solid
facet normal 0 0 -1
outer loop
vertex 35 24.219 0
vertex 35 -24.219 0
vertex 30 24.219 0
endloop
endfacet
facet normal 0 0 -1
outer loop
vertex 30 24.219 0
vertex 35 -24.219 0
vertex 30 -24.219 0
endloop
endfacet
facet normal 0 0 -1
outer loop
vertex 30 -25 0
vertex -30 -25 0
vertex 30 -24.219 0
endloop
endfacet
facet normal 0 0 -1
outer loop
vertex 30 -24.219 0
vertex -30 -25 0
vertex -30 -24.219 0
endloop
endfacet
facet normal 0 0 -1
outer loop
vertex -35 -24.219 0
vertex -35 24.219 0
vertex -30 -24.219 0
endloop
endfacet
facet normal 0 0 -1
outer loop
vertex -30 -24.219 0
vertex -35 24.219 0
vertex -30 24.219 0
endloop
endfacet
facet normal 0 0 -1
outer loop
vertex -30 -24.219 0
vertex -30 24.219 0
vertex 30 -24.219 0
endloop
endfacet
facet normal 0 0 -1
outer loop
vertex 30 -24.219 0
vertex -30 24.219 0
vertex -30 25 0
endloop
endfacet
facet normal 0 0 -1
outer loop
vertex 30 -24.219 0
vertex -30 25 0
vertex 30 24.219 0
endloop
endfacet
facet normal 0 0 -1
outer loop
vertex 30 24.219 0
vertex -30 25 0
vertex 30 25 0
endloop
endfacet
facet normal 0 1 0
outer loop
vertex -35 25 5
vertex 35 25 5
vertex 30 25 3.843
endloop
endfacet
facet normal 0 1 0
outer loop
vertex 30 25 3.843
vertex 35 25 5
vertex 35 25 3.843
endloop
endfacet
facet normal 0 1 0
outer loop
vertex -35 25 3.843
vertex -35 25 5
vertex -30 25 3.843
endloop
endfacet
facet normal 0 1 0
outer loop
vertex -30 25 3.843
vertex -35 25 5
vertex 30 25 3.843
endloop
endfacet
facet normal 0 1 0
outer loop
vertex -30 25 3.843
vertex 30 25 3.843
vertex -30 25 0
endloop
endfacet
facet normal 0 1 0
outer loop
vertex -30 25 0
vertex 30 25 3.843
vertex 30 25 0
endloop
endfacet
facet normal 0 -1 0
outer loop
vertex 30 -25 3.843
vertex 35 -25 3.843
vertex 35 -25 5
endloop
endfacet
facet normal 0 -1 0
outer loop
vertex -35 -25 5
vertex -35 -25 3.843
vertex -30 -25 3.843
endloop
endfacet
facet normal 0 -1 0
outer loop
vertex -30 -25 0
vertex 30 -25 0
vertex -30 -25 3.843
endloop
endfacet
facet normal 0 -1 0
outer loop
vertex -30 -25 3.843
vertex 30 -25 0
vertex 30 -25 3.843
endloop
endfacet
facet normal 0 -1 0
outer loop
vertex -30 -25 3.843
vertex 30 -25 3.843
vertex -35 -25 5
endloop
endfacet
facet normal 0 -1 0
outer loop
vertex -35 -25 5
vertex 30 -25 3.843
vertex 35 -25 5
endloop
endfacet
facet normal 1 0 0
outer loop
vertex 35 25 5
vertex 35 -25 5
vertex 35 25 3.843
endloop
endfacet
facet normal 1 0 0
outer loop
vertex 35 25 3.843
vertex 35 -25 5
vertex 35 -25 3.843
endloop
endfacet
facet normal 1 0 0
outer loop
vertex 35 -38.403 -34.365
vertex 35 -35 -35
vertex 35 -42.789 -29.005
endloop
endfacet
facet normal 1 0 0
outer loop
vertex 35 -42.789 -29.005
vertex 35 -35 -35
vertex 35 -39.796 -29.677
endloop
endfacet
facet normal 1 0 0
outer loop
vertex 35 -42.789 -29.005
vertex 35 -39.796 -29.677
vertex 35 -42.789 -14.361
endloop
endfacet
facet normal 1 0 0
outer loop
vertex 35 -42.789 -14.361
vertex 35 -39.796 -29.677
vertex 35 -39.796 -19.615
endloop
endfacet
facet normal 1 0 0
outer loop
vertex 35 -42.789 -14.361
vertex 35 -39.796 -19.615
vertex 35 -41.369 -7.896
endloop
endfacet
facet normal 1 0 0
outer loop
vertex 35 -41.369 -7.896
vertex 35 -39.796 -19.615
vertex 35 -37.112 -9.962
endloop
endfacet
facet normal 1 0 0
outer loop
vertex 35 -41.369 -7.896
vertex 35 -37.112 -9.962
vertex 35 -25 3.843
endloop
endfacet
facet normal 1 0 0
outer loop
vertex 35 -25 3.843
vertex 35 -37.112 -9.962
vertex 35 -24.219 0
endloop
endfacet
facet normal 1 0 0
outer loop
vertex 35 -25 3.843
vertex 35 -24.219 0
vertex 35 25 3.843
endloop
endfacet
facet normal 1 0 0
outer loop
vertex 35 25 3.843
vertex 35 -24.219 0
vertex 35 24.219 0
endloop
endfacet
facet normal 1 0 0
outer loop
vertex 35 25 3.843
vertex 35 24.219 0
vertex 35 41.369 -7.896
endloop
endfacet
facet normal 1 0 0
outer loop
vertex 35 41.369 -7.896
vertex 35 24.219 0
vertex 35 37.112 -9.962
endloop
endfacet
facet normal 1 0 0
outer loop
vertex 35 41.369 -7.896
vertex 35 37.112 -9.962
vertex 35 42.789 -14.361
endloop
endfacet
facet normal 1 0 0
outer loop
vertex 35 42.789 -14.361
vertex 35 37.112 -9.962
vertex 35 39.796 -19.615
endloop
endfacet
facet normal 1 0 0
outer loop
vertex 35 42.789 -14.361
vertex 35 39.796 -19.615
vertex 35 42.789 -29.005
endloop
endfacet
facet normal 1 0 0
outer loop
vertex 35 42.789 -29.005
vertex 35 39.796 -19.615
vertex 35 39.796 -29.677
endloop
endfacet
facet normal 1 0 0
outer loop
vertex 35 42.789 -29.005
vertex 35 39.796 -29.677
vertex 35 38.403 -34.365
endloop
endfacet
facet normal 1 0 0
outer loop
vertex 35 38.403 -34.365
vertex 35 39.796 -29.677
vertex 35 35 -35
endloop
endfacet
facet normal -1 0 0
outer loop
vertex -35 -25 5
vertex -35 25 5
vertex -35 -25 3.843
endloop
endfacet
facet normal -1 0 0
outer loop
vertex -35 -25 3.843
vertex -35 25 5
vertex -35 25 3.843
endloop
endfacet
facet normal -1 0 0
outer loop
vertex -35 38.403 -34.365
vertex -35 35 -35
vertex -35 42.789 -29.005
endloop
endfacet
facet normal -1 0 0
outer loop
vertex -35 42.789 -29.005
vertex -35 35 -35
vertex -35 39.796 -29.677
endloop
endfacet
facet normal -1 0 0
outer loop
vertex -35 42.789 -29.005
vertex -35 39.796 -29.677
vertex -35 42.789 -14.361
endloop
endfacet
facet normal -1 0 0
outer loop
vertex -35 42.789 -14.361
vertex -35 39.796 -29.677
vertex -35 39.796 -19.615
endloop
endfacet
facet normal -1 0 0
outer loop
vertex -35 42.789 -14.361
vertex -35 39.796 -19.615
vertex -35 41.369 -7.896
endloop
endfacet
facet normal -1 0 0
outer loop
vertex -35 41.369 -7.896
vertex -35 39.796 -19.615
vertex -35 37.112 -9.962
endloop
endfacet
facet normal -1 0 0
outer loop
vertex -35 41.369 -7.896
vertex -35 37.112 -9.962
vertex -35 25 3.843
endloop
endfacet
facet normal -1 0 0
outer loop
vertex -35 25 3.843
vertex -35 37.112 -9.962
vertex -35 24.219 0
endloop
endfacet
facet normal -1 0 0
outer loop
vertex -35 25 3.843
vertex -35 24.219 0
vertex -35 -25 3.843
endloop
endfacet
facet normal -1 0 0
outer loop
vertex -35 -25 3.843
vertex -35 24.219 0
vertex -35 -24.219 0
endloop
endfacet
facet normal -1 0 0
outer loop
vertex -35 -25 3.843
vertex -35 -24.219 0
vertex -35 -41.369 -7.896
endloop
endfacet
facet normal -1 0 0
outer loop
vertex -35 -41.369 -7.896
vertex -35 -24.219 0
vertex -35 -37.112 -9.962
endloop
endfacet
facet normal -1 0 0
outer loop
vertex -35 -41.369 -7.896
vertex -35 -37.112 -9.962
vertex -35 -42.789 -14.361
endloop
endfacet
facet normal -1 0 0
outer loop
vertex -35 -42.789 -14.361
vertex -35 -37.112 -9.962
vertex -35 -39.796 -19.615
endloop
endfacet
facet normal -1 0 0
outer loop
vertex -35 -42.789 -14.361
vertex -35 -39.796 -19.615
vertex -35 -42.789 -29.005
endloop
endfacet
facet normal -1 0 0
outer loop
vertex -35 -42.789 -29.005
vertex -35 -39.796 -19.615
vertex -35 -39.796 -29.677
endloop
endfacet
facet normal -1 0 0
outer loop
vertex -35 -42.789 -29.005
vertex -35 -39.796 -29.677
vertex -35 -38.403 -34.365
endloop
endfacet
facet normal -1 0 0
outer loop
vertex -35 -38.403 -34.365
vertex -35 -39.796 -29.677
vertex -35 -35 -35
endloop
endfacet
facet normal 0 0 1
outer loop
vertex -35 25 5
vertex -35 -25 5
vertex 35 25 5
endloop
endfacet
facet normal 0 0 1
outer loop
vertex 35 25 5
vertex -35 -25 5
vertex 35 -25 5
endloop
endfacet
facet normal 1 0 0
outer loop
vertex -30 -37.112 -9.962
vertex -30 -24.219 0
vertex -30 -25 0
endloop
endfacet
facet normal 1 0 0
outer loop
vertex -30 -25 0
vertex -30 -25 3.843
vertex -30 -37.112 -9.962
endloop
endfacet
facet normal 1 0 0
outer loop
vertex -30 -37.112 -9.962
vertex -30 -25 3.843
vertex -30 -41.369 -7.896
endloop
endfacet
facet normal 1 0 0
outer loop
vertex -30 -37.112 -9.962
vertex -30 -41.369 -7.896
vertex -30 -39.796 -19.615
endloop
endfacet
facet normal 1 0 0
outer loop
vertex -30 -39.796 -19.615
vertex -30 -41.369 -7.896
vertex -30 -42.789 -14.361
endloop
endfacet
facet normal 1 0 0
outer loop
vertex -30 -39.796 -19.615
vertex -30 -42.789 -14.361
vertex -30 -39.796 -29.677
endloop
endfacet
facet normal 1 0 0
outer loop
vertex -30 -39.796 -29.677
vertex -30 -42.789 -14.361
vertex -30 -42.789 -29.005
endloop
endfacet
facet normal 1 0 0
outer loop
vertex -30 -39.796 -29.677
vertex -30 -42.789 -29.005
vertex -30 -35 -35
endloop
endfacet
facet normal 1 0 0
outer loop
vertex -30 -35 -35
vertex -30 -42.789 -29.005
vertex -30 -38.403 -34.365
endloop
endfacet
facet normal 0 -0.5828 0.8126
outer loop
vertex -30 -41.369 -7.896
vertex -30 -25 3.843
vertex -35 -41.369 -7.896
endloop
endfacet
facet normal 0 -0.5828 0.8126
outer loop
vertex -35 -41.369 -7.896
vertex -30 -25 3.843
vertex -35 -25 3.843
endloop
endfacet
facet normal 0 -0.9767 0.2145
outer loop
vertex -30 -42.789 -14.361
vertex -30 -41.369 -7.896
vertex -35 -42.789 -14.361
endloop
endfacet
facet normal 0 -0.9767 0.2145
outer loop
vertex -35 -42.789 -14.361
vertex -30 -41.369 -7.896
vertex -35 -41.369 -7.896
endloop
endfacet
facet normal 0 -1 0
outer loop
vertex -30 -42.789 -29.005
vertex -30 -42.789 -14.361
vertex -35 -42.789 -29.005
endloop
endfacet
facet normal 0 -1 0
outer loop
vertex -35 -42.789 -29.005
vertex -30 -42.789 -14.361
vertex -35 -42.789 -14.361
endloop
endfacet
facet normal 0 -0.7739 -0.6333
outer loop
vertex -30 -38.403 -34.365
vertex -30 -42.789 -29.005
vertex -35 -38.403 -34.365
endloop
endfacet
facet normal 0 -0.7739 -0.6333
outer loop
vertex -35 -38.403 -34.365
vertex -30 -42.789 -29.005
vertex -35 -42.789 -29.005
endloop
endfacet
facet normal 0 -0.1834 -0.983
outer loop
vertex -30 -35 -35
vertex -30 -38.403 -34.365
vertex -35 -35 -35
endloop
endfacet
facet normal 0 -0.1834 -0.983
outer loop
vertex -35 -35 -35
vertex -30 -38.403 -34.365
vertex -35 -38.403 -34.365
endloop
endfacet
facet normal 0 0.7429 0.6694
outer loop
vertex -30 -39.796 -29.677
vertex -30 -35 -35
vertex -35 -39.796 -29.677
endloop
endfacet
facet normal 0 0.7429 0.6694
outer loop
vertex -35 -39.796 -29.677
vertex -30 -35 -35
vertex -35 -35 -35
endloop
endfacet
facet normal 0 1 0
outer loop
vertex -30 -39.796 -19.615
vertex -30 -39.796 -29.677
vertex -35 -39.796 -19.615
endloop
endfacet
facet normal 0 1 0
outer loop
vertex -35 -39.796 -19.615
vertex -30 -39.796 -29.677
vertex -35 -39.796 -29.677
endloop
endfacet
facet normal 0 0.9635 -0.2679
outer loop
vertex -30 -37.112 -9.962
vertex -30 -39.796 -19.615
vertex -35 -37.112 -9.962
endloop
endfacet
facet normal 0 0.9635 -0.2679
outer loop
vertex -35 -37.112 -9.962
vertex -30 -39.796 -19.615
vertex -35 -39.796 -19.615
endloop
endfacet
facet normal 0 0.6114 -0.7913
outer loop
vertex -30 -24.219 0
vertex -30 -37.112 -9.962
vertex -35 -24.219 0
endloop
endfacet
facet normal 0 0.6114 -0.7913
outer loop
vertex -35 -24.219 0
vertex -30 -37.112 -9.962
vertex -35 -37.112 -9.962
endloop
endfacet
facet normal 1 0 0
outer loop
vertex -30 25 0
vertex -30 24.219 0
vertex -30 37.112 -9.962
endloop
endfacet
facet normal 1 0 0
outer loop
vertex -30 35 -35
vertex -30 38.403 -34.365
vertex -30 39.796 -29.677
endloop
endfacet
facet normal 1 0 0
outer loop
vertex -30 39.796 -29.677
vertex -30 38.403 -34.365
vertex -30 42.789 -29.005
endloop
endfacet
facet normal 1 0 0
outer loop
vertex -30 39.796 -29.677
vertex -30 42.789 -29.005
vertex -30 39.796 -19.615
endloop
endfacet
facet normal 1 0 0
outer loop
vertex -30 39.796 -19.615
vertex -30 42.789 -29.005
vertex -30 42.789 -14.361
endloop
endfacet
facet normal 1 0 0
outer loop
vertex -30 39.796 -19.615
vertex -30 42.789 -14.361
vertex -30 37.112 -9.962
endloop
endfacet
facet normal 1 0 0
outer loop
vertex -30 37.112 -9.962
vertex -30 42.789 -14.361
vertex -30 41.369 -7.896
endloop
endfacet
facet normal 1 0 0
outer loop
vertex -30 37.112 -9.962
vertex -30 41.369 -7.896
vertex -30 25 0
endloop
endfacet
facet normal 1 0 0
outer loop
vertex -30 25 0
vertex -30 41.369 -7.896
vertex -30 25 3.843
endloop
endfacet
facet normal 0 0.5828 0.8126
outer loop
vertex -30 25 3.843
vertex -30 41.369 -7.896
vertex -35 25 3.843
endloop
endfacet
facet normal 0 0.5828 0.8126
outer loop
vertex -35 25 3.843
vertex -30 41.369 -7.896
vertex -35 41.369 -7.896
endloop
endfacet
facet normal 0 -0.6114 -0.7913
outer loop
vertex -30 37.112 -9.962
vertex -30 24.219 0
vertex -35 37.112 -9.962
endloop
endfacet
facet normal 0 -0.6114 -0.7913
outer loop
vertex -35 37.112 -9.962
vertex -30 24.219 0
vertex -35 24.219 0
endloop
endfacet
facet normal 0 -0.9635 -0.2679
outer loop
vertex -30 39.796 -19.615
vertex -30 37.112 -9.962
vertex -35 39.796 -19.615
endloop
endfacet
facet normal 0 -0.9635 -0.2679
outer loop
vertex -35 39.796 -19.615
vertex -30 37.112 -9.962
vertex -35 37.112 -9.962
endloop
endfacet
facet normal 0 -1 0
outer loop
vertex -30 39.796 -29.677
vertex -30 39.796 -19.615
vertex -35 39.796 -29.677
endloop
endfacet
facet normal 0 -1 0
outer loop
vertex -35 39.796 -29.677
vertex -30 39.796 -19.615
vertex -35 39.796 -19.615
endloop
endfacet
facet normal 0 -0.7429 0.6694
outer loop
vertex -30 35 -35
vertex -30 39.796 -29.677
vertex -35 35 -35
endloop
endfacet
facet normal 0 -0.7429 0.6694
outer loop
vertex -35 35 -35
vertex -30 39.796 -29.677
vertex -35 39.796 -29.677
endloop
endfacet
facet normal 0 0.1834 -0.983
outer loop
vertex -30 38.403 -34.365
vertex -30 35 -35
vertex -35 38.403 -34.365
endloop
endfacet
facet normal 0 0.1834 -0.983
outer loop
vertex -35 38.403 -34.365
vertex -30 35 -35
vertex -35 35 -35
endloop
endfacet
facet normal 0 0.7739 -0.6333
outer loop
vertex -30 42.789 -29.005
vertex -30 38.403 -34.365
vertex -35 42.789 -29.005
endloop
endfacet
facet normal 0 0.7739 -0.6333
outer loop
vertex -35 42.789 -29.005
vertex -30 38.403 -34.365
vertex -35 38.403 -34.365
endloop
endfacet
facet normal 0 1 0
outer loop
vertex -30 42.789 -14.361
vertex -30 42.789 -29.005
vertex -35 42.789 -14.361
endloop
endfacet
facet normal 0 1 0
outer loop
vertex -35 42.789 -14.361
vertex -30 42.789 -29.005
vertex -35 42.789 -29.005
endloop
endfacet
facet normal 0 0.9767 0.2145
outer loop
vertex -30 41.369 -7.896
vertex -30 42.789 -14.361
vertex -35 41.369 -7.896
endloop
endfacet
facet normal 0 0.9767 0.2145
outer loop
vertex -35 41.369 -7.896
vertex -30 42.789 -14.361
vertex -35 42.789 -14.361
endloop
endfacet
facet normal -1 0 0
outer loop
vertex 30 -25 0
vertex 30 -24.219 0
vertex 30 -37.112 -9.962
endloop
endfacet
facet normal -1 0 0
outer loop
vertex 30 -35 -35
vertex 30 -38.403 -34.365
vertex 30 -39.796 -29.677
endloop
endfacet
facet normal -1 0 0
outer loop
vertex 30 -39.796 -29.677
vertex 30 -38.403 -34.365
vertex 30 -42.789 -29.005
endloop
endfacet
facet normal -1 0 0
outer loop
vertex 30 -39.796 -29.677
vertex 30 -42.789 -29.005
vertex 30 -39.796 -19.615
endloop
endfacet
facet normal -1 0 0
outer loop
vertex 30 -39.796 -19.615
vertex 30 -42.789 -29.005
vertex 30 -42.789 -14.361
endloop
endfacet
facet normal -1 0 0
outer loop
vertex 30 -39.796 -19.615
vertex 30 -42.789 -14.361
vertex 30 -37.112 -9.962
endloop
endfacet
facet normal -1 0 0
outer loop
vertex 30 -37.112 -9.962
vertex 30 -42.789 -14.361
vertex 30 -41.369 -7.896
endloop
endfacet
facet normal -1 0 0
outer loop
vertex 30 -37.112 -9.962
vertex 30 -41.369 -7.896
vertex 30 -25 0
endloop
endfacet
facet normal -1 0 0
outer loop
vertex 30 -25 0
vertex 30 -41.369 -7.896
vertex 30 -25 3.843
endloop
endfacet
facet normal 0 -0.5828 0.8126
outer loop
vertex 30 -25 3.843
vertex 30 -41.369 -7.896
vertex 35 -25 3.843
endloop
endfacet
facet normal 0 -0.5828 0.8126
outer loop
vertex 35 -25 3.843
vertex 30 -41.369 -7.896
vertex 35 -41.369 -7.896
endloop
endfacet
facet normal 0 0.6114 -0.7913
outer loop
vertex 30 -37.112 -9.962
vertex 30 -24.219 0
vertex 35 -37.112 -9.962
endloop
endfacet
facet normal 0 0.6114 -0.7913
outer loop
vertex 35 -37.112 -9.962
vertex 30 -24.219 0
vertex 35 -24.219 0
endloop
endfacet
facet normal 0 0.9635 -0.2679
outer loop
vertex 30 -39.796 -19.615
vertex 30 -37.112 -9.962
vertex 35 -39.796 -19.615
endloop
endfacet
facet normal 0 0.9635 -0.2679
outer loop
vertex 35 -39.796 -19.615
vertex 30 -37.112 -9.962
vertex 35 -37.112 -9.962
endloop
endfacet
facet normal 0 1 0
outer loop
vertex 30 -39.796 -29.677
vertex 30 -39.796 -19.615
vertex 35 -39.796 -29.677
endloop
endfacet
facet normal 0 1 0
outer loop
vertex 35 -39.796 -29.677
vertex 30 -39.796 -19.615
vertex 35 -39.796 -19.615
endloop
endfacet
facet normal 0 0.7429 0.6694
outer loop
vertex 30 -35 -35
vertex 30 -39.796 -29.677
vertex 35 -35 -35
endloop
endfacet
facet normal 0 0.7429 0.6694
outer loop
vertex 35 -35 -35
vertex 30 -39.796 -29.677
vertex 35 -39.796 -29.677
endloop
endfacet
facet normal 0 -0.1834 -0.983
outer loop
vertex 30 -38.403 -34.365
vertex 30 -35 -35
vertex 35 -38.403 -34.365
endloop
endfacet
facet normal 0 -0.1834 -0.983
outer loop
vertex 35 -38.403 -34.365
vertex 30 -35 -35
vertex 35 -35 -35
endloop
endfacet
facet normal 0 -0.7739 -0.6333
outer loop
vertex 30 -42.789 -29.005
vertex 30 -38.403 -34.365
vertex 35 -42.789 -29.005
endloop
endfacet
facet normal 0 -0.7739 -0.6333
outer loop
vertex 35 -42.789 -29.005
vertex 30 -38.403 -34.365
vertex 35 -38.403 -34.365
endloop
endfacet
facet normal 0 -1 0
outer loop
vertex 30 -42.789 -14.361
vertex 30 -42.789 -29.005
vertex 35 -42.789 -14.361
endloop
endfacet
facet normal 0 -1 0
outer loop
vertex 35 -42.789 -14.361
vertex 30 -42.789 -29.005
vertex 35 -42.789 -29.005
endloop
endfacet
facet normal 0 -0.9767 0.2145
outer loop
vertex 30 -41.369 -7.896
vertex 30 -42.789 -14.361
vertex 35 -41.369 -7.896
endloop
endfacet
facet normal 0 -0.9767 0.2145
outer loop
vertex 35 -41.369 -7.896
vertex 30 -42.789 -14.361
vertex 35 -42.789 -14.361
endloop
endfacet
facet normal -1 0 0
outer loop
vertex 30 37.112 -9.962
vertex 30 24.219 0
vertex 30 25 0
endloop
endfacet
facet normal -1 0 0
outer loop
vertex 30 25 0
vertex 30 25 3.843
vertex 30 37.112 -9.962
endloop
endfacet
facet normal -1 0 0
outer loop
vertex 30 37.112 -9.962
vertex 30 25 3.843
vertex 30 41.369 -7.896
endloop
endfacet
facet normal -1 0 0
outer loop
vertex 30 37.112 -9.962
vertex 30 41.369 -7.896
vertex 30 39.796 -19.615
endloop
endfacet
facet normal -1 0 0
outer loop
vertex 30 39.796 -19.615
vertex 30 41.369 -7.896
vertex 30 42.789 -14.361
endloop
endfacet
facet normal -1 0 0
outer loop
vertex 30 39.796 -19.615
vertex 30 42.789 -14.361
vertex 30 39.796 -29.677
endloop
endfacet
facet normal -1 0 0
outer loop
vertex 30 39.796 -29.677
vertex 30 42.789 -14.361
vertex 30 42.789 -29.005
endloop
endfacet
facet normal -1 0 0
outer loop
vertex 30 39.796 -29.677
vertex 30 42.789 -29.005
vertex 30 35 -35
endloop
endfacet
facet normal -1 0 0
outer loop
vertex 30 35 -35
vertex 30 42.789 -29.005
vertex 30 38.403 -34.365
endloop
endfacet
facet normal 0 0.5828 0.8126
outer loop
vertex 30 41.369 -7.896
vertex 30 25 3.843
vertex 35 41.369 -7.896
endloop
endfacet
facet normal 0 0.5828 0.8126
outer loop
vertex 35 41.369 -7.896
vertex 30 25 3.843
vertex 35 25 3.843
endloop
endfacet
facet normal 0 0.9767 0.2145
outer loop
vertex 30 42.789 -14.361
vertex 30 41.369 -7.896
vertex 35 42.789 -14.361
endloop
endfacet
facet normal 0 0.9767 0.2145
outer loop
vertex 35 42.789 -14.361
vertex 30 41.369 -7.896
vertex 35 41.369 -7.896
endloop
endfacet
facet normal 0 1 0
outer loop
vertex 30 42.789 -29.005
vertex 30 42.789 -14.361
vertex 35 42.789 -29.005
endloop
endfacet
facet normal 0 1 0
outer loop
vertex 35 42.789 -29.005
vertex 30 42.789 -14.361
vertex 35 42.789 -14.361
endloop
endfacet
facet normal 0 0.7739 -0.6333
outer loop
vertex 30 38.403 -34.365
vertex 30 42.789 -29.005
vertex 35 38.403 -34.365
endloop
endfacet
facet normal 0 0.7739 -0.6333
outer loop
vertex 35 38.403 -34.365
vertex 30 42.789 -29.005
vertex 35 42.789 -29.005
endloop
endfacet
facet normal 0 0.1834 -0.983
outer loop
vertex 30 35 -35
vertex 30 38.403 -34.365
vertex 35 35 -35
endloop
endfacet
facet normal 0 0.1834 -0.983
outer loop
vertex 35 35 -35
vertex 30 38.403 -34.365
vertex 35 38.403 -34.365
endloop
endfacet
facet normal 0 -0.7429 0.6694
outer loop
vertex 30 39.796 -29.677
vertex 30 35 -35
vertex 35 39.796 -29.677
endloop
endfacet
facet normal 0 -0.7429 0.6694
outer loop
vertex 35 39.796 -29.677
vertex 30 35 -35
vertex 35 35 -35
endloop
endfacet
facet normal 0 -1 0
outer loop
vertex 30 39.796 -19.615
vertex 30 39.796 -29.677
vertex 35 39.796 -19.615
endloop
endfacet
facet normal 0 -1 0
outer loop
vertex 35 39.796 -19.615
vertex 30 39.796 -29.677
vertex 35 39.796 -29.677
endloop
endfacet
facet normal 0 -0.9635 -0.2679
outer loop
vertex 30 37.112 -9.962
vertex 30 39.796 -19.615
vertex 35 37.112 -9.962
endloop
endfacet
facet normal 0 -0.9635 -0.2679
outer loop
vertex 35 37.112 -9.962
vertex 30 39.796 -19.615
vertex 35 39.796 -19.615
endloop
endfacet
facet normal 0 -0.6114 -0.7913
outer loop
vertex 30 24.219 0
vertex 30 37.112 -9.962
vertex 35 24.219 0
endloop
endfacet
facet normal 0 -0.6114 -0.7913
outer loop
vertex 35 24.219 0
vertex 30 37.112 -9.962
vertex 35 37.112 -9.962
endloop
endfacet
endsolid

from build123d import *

# Parameters (mm, degrees)
SKETCH1_W            = 70
SKETCH1_H            = 50
BOSS_EXTRUDE1_DEPTH  = 5
BOSS_EXTRUDE2_DEPTH  = 5
MIRROR2_COPY_1_DEPTH = 5


with BuildPart() as part:
    # Sketch1 → Boss-Extrude1 (new body)
    with BuildSketch(Plane.XY):
        Rectangle(SKETCH1_W, SKETCH1_H)
    extrude(amount=BOSS_EXTRUDE1_DEPTH)

    # Sketch2 → Boss-Extrude2 (add)
    with BuildSketch(Plane.ZY.offset(35)):
        Polygon((3.843440475, -25), (-7.895535709, -41.369324188), (-14.361094855, -42.788640383), (-29.004505052, -42.788640383), (-34.365162286, -38.4026481), (-35, -35), (-29.677149334, -39.79641498), (-19.61481892, -39.79641498), (-9.962095697, -37.111555615), (0, -24.21921522), align=None)
    boss_extrude2 = extrude(amount=-BOSS_EXTRUDE2_DEPTH)

    # Mirror1: Boss-Extrude2 across plane
    add(boss_extrude2.mirror(Plane.ZX))

    # Mirror2: Boss-Extrude2 across plane
    add(boss_extrude2.mirror(Plane(origin=(0, 0, 0), x_dir=(0, 0, 1), z_dir=(1, 0, 0))))

    # Mirror2 copy 1 sketch → Mirror2 copy 1 (add)
    with BuildSketch(Plane(origin=(35, 0, 0), x_dir=(0, 0, 1), z_dir=(1, 0, 0))):
        Polygon((3.843440475, -25), (-7.895535709, -41.369324188), (-14.361094855, -42.788640383), (-29.004505052, -42.788640383), (-34.365162286, -38.4026481), (-35, -35), (-29.677149334, -39.79641498), (-19.61481892, -39.79641498), (-9.962095697, -37.111555615), (0, -24.21921522), align=None)
    extrude(amount=-MIRROR2_COPY_1_DEPTH)


solid = part.part
